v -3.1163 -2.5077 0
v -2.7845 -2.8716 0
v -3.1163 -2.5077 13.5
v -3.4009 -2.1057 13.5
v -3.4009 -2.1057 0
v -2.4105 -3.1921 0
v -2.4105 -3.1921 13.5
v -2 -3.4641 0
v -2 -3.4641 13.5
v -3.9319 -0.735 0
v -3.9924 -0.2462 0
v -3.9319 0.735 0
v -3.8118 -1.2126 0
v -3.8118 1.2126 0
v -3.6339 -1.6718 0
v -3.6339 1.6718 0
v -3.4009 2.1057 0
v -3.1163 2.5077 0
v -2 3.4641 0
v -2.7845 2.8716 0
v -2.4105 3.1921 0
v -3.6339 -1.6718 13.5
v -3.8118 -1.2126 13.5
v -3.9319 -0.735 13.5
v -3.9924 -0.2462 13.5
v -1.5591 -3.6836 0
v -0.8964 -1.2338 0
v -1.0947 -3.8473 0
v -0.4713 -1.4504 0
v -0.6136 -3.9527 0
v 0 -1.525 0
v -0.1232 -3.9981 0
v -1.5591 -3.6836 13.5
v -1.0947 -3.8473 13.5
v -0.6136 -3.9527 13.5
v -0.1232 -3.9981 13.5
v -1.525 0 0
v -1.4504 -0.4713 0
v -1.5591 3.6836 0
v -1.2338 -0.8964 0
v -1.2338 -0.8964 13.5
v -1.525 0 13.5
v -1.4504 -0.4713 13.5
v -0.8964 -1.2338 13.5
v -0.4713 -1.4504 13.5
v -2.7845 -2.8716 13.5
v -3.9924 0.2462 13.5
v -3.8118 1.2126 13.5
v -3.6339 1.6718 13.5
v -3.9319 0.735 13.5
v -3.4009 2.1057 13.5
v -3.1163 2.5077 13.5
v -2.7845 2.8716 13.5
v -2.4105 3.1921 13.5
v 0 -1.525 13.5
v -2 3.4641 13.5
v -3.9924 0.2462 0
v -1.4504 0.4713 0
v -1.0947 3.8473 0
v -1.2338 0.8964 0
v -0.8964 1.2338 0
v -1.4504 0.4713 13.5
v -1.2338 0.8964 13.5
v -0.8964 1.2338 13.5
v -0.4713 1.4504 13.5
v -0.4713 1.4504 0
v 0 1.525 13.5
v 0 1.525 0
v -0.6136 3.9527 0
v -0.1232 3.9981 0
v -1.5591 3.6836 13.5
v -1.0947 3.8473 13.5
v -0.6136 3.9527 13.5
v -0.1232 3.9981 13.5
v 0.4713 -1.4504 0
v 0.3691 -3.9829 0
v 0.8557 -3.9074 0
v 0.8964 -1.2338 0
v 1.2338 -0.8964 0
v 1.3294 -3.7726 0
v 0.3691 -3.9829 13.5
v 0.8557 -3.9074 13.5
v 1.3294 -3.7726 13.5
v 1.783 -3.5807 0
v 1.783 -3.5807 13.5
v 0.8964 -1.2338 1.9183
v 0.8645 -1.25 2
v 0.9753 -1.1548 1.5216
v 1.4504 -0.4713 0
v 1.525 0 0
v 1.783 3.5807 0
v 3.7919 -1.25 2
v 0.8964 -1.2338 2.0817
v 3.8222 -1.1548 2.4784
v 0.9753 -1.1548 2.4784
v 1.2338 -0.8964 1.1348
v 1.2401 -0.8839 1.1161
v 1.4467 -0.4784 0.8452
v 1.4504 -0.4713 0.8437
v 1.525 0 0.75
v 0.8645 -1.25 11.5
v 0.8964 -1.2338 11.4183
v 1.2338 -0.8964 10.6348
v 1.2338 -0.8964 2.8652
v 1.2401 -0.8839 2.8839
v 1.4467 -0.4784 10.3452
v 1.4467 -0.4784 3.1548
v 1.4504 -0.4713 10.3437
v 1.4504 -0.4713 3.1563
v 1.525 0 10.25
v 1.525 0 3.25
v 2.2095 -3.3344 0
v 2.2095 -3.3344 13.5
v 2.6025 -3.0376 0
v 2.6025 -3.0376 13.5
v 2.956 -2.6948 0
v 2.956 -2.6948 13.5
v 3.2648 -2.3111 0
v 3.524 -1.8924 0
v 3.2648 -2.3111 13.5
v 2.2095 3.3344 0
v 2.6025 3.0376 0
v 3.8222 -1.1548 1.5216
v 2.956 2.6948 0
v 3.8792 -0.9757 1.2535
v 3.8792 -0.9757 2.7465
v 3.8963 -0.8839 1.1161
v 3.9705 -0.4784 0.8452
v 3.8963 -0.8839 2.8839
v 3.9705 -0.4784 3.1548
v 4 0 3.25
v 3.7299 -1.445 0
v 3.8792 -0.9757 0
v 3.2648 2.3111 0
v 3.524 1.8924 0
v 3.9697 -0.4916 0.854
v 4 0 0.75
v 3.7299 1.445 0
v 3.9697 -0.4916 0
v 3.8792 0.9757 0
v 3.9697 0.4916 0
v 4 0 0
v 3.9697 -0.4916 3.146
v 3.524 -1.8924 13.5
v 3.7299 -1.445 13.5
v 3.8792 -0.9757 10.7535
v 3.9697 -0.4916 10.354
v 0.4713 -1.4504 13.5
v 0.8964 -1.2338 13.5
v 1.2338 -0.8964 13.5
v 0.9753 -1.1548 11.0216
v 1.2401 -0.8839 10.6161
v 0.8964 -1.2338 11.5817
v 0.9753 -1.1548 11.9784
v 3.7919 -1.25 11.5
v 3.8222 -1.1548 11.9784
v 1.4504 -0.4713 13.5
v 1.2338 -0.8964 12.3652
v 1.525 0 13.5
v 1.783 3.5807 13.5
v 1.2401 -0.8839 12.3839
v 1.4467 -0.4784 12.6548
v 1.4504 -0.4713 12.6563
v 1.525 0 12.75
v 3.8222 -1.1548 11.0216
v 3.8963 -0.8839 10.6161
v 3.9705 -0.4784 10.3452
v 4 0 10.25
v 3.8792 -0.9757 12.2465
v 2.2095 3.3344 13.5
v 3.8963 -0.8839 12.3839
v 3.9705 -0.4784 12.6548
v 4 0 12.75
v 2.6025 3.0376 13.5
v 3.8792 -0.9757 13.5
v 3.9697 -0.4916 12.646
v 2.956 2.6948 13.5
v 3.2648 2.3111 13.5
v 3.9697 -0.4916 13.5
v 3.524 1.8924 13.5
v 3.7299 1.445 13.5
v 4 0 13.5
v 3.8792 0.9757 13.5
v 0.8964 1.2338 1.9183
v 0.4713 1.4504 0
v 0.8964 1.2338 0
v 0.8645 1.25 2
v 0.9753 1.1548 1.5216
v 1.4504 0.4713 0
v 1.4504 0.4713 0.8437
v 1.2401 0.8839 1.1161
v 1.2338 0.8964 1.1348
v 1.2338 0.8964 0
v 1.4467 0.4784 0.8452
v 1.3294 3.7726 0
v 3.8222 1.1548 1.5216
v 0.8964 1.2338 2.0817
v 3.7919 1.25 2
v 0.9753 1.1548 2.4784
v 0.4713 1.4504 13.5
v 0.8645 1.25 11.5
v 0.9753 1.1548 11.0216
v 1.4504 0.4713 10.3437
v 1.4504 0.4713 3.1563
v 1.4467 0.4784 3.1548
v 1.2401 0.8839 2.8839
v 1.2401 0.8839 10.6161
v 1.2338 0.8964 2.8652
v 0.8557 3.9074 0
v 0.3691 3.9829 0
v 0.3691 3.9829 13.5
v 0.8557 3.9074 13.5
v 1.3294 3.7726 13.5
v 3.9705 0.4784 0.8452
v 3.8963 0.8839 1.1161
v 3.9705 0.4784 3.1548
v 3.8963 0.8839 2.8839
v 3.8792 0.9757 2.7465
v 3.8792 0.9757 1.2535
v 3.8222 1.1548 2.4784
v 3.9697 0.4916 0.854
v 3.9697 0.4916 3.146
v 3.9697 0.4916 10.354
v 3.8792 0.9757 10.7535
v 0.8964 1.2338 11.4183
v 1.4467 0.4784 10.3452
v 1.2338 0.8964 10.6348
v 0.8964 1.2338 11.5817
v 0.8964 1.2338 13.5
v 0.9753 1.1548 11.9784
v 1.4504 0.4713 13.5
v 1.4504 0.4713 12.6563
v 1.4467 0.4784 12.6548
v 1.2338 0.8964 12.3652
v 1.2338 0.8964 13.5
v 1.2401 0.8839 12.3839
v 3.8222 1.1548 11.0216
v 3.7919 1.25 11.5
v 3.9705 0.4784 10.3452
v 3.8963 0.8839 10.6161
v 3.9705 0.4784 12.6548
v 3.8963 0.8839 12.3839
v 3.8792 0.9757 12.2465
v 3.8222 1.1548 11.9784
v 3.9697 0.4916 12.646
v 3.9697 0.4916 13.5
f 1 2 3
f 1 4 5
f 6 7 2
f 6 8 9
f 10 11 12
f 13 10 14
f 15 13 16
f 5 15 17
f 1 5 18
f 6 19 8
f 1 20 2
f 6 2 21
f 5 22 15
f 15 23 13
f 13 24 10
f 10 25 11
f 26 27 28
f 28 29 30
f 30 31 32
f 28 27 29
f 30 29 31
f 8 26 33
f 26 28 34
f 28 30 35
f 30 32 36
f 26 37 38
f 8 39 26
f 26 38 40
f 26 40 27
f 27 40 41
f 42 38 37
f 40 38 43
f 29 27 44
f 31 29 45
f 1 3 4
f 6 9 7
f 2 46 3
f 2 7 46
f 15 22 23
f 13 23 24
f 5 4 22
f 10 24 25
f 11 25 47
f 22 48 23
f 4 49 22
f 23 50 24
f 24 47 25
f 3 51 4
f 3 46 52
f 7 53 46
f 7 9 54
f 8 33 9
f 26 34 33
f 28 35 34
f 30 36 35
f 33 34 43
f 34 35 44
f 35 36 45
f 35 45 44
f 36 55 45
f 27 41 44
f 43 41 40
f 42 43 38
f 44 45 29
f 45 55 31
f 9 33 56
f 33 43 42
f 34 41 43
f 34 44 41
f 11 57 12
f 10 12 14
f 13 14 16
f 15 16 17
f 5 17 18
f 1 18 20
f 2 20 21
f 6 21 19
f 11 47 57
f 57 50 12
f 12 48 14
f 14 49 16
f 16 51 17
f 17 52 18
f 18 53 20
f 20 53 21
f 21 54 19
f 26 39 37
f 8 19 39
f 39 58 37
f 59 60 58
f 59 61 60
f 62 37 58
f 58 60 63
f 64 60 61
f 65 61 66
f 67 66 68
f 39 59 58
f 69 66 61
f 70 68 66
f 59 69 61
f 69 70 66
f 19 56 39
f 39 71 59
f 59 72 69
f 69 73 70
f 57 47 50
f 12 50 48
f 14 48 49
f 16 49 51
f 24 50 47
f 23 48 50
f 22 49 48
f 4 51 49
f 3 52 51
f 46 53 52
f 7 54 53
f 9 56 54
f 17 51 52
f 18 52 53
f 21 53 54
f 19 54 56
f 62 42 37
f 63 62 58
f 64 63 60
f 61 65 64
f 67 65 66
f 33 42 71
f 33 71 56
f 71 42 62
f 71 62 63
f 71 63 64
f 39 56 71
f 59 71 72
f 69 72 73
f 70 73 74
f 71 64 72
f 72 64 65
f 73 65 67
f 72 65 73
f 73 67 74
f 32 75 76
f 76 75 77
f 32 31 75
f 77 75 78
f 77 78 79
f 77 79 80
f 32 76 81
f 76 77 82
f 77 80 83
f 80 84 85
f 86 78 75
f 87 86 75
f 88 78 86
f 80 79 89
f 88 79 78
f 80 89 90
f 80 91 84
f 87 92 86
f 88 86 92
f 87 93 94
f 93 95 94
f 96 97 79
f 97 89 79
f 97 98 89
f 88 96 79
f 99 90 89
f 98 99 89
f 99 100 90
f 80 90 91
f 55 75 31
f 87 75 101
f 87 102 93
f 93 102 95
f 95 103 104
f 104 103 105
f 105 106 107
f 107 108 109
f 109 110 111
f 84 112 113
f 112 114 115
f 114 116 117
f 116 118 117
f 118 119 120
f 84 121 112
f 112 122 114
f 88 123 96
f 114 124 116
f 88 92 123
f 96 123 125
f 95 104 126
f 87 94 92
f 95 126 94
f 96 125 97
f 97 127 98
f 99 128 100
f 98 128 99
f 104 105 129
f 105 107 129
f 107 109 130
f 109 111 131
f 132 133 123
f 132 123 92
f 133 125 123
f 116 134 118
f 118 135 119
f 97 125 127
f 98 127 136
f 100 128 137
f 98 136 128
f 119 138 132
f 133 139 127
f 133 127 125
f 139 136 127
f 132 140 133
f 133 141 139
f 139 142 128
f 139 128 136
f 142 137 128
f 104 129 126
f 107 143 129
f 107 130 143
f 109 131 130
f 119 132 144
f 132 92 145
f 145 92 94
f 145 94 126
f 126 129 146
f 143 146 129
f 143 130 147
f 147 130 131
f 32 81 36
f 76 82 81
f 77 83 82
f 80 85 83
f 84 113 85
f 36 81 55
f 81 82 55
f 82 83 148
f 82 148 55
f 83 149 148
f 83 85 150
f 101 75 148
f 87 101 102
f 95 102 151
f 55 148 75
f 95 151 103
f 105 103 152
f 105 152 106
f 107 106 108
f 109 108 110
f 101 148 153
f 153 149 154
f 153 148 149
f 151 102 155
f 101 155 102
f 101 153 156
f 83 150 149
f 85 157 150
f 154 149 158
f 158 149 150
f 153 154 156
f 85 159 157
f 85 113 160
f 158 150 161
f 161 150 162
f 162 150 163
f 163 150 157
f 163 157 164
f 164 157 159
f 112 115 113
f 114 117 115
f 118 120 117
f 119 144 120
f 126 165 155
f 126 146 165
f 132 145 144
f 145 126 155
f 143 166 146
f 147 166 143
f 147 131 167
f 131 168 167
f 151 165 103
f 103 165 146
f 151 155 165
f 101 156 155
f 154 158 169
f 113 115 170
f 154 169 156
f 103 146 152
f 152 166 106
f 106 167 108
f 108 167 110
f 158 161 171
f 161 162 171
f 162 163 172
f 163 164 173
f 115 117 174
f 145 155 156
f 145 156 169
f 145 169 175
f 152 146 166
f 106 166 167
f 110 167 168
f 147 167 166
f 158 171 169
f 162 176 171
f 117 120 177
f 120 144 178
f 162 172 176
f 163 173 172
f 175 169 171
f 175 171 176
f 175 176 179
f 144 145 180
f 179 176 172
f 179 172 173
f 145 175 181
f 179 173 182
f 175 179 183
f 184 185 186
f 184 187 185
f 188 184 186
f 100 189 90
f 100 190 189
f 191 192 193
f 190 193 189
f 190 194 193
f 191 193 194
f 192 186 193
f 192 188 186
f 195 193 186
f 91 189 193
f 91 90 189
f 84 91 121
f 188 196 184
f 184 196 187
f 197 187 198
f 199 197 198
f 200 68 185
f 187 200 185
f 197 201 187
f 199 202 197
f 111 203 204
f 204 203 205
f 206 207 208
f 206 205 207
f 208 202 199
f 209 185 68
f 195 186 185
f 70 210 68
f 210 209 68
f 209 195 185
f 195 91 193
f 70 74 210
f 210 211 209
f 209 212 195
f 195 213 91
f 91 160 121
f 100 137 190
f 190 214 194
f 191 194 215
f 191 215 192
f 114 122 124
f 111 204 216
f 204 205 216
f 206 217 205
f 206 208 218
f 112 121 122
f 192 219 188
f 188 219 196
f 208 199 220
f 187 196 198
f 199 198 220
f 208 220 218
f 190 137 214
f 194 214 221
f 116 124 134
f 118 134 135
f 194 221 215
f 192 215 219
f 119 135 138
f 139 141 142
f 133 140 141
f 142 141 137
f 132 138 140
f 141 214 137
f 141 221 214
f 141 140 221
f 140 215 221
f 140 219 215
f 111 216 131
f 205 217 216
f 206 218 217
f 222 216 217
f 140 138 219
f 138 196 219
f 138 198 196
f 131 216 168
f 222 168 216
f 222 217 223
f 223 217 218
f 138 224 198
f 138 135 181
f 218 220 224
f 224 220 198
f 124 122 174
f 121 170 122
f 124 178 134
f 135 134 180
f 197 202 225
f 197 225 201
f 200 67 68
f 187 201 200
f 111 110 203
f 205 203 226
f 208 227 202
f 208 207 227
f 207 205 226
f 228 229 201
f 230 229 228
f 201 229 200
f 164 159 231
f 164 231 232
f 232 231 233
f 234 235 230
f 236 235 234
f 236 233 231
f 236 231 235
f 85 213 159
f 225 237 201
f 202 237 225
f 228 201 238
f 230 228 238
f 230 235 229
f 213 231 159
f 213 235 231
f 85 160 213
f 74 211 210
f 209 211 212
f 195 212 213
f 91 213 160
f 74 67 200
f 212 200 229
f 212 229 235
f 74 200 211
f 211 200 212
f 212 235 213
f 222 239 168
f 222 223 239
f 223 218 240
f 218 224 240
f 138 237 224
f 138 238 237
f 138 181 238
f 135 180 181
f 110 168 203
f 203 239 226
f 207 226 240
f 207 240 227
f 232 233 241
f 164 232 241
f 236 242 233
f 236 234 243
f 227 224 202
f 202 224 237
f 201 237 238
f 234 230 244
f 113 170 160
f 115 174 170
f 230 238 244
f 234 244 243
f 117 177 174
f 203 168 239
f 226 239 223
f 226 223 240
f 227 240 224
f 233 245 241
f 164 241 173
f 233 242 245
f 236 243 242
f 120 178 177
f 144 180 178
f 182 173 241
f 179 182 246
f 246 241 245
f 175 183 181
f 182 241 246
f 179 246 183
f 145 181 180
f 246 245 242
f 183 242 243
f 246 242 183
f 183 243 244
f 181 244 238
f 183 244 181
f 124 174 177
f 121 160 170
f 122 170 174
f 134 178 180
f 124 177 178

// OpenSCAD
// file: lib/lib.scad
// Shared helpers. Include AFTER params.scad (needs TOL, M3_* etc.).
$fa = 4; $fs = 0.5;

module rrect(size, r) {            // 2D rounded rectangle, centred
    r2 = min(r, min(size[0], size[1]) / 2 - 0.001);
    offset(r = r2) square([size[0] - 2 * r2, size[1] - 2 * r2], center = true);
}
module rbox(size, r, center_xy = true) {   // box with rounded vertical edges
    translate(center_xy ? [0, 0, 0] : [size[0] / 2, size[1] / 2, 0])
        linear_extrude(size[2]) rrect([size[0], size[1]], r);
}
module rbox_at(x0, x1, y0, y1, z0, z1, r = 0.01) {
    translate([(x0 + x1) / 2, (y0 + y1) / 2, z0]) rbox([x1 - x0, y1 - y0, z1 - z0], r);
}
module box_at(x0, x1, y0, y1, z0, z1) { translate([x0, y0, z0]) cube([x1 - x0, y1 - y0, z1 - z0]); }

module ring(ro, ri, h) { difference() { cylinder(r = ro, h = h); translate([0, 0, -1]) cylinder(r = ri, h = h + 2); } }
module ring_sector(ro, ri, h, a0, a1) {
    intersection() {
        ring(ro, ri, h);
        linear_extrude(h) polygon(concat([[0, 0]], [for (a = [a0 : (a1 - a0) / 24 : a1]) 2 * ro * [cos(a), sin(a)]]));
    }
}
// teardrop hole along an axis lying horizontal (axis = Y after rotation), printable w/o support
module teardrop2d(d) { union() { circle(d = d); rotate(45) square(d / 2); } }
// vertical heat-set insert hole, opening at z=0 going +z (depth l)
module insert_hole(l = M3_INSERT_L) { translate([0, 0, -EPS]) cylinder(d = M3_INSERT_D, h = l + EPS); }
module m3_clear(l) { translate([0, 0, -EPS]) cylinder(d = M3_CLEAR, h = l + 2 * EPS); }
module m3_csk(l) {  // countersunk clearance from z=0 upward, head at z=0 side
    translate([0, 0, -EPS]) { cylinder(d = M3_CLEAR, h = l + 2 * EPS); cylinder(d1 = 6.4, d2 = M3_CLEAR, h = 1.7); }
}
module card2d() { rrect([CARD_L, CARD_W], CARD_R); }
module card_at(cy, z) { translate([0, cy, z]) linear_extrude(CARD_T) card2d(); }

// ---- gears ----
function _inv(a) = tan(a) - a * PI_ / 180;           // involute function, a in deg
function _invpt(rb, r, ang0, s) = let(al = acos(rb / r), th = ang0 - s * (_inv(al) * 180 / PI_)) [r * cos(th), r * sin(th)];
module involute_gear2d(m, z, pa = 20, clearance = 0.05) {
    rp = m * z / 2; rb = rp * cos(pa); ra = rp + m - clearance; rf = rp - 1.25 * m;
    half = 90 / z + _inv(pa) * 180 / PI_;            // tooth half-angle at base (deg)
    n = 8;
    rs = [for (i = [0 : n]) max(rb, rf) + (ra - max(rb, rf)) * i / n];
    union() {
        circle(r = rf, $fn = z * 4);
        for (k = [0 : z - 1]) rotate(k * 360 / z) polygon(concat(
            [[rf * cos(-half), rf * sin(-half)]],
            [for (r = rs) let(p = _invpt(rb, r, half, 1)) [p[0], -p[1]]],
            [for (i = [n : -1 : 0]) _invpt(rb, rs[i], half, 1)],
            [[rf * cos(half), rf * sin(half)]]));
    }
}
// straight gear rack (2D in XY: teeth along +x, pointing -y, pitch line at y=0)
module gear_rack2d(m, len, back = 3) {
    p = PI_ * m; ad = m; de = 1.25 * m; t = tan(20);
    n = ceil(len / p) + 1;
    intersection() {
        union() {
            translate([0, de]) square([len, back]);
            for (i = [0 : n]) translate([i * p - p / 4, 0]) polygon([
                [-(p / 4 + de * t), de + 0.01], [p / 4 + de * t + 0.01, de + 0.01],
                [p / 4 - ad * t, -ad], [-(p / 4 - ad * t), -ad] ]);
        }
        translate([0, -ad - 1]) square([len, ad + de + back + 2]);
    }
}
// GT2 belt-tooth profile ring (teeth outward), 2D
module gt2_ring2d(n, r_land, ri) {
    union() {
        difference() { circle(r = r_land + 0.01, $fn = n * 2); circle(r = ri, $fn = n * 2); }
        for (k = [0 : n - 1]) rotate(k * 360 / n)
            translate([r_land, 0]) hull() { translate([-0.2, 0]) square([0.2, 1.0], center = true); translate([0.25, 0]) circle(r = 0.5, $fn = 12); }
    }
}
// main file
// Shaft coupler: N20 D-shaft (3 mm) to the 3 mm roller shaft, 2 x M3 grub screws.
// Print: upright.
include <params.scad>
include <lib/lib.scad>
CPL_X0 = SHAFT_X1 - 4;  CPL_X1 = N20_FACE_X - 0.5;
module loader_coupler() translate([CPL_X0, FEED_Y, FEED_Z]) rotate([0, 90, 0]) difference() {
    cylinder(d = 8, h = CPL_X1 - CPL_X0);
    translate([0, 0, -1]) cylinder(d = SHAFT_D + 0.05, h = 30);
    for (z = [2, CPL_X1 - CPL_X0 - 2]) translate([0, 0, z]) rotate([0, 90, 0]) cylinder(d = 2.5, h = 10);
}
module loader_coupler_print() rotate([0, -90, 0]) translate([-CPL_X0, -FEED_Y, -FEED_Z]) loader_coupler();
loader_coupler_print();
